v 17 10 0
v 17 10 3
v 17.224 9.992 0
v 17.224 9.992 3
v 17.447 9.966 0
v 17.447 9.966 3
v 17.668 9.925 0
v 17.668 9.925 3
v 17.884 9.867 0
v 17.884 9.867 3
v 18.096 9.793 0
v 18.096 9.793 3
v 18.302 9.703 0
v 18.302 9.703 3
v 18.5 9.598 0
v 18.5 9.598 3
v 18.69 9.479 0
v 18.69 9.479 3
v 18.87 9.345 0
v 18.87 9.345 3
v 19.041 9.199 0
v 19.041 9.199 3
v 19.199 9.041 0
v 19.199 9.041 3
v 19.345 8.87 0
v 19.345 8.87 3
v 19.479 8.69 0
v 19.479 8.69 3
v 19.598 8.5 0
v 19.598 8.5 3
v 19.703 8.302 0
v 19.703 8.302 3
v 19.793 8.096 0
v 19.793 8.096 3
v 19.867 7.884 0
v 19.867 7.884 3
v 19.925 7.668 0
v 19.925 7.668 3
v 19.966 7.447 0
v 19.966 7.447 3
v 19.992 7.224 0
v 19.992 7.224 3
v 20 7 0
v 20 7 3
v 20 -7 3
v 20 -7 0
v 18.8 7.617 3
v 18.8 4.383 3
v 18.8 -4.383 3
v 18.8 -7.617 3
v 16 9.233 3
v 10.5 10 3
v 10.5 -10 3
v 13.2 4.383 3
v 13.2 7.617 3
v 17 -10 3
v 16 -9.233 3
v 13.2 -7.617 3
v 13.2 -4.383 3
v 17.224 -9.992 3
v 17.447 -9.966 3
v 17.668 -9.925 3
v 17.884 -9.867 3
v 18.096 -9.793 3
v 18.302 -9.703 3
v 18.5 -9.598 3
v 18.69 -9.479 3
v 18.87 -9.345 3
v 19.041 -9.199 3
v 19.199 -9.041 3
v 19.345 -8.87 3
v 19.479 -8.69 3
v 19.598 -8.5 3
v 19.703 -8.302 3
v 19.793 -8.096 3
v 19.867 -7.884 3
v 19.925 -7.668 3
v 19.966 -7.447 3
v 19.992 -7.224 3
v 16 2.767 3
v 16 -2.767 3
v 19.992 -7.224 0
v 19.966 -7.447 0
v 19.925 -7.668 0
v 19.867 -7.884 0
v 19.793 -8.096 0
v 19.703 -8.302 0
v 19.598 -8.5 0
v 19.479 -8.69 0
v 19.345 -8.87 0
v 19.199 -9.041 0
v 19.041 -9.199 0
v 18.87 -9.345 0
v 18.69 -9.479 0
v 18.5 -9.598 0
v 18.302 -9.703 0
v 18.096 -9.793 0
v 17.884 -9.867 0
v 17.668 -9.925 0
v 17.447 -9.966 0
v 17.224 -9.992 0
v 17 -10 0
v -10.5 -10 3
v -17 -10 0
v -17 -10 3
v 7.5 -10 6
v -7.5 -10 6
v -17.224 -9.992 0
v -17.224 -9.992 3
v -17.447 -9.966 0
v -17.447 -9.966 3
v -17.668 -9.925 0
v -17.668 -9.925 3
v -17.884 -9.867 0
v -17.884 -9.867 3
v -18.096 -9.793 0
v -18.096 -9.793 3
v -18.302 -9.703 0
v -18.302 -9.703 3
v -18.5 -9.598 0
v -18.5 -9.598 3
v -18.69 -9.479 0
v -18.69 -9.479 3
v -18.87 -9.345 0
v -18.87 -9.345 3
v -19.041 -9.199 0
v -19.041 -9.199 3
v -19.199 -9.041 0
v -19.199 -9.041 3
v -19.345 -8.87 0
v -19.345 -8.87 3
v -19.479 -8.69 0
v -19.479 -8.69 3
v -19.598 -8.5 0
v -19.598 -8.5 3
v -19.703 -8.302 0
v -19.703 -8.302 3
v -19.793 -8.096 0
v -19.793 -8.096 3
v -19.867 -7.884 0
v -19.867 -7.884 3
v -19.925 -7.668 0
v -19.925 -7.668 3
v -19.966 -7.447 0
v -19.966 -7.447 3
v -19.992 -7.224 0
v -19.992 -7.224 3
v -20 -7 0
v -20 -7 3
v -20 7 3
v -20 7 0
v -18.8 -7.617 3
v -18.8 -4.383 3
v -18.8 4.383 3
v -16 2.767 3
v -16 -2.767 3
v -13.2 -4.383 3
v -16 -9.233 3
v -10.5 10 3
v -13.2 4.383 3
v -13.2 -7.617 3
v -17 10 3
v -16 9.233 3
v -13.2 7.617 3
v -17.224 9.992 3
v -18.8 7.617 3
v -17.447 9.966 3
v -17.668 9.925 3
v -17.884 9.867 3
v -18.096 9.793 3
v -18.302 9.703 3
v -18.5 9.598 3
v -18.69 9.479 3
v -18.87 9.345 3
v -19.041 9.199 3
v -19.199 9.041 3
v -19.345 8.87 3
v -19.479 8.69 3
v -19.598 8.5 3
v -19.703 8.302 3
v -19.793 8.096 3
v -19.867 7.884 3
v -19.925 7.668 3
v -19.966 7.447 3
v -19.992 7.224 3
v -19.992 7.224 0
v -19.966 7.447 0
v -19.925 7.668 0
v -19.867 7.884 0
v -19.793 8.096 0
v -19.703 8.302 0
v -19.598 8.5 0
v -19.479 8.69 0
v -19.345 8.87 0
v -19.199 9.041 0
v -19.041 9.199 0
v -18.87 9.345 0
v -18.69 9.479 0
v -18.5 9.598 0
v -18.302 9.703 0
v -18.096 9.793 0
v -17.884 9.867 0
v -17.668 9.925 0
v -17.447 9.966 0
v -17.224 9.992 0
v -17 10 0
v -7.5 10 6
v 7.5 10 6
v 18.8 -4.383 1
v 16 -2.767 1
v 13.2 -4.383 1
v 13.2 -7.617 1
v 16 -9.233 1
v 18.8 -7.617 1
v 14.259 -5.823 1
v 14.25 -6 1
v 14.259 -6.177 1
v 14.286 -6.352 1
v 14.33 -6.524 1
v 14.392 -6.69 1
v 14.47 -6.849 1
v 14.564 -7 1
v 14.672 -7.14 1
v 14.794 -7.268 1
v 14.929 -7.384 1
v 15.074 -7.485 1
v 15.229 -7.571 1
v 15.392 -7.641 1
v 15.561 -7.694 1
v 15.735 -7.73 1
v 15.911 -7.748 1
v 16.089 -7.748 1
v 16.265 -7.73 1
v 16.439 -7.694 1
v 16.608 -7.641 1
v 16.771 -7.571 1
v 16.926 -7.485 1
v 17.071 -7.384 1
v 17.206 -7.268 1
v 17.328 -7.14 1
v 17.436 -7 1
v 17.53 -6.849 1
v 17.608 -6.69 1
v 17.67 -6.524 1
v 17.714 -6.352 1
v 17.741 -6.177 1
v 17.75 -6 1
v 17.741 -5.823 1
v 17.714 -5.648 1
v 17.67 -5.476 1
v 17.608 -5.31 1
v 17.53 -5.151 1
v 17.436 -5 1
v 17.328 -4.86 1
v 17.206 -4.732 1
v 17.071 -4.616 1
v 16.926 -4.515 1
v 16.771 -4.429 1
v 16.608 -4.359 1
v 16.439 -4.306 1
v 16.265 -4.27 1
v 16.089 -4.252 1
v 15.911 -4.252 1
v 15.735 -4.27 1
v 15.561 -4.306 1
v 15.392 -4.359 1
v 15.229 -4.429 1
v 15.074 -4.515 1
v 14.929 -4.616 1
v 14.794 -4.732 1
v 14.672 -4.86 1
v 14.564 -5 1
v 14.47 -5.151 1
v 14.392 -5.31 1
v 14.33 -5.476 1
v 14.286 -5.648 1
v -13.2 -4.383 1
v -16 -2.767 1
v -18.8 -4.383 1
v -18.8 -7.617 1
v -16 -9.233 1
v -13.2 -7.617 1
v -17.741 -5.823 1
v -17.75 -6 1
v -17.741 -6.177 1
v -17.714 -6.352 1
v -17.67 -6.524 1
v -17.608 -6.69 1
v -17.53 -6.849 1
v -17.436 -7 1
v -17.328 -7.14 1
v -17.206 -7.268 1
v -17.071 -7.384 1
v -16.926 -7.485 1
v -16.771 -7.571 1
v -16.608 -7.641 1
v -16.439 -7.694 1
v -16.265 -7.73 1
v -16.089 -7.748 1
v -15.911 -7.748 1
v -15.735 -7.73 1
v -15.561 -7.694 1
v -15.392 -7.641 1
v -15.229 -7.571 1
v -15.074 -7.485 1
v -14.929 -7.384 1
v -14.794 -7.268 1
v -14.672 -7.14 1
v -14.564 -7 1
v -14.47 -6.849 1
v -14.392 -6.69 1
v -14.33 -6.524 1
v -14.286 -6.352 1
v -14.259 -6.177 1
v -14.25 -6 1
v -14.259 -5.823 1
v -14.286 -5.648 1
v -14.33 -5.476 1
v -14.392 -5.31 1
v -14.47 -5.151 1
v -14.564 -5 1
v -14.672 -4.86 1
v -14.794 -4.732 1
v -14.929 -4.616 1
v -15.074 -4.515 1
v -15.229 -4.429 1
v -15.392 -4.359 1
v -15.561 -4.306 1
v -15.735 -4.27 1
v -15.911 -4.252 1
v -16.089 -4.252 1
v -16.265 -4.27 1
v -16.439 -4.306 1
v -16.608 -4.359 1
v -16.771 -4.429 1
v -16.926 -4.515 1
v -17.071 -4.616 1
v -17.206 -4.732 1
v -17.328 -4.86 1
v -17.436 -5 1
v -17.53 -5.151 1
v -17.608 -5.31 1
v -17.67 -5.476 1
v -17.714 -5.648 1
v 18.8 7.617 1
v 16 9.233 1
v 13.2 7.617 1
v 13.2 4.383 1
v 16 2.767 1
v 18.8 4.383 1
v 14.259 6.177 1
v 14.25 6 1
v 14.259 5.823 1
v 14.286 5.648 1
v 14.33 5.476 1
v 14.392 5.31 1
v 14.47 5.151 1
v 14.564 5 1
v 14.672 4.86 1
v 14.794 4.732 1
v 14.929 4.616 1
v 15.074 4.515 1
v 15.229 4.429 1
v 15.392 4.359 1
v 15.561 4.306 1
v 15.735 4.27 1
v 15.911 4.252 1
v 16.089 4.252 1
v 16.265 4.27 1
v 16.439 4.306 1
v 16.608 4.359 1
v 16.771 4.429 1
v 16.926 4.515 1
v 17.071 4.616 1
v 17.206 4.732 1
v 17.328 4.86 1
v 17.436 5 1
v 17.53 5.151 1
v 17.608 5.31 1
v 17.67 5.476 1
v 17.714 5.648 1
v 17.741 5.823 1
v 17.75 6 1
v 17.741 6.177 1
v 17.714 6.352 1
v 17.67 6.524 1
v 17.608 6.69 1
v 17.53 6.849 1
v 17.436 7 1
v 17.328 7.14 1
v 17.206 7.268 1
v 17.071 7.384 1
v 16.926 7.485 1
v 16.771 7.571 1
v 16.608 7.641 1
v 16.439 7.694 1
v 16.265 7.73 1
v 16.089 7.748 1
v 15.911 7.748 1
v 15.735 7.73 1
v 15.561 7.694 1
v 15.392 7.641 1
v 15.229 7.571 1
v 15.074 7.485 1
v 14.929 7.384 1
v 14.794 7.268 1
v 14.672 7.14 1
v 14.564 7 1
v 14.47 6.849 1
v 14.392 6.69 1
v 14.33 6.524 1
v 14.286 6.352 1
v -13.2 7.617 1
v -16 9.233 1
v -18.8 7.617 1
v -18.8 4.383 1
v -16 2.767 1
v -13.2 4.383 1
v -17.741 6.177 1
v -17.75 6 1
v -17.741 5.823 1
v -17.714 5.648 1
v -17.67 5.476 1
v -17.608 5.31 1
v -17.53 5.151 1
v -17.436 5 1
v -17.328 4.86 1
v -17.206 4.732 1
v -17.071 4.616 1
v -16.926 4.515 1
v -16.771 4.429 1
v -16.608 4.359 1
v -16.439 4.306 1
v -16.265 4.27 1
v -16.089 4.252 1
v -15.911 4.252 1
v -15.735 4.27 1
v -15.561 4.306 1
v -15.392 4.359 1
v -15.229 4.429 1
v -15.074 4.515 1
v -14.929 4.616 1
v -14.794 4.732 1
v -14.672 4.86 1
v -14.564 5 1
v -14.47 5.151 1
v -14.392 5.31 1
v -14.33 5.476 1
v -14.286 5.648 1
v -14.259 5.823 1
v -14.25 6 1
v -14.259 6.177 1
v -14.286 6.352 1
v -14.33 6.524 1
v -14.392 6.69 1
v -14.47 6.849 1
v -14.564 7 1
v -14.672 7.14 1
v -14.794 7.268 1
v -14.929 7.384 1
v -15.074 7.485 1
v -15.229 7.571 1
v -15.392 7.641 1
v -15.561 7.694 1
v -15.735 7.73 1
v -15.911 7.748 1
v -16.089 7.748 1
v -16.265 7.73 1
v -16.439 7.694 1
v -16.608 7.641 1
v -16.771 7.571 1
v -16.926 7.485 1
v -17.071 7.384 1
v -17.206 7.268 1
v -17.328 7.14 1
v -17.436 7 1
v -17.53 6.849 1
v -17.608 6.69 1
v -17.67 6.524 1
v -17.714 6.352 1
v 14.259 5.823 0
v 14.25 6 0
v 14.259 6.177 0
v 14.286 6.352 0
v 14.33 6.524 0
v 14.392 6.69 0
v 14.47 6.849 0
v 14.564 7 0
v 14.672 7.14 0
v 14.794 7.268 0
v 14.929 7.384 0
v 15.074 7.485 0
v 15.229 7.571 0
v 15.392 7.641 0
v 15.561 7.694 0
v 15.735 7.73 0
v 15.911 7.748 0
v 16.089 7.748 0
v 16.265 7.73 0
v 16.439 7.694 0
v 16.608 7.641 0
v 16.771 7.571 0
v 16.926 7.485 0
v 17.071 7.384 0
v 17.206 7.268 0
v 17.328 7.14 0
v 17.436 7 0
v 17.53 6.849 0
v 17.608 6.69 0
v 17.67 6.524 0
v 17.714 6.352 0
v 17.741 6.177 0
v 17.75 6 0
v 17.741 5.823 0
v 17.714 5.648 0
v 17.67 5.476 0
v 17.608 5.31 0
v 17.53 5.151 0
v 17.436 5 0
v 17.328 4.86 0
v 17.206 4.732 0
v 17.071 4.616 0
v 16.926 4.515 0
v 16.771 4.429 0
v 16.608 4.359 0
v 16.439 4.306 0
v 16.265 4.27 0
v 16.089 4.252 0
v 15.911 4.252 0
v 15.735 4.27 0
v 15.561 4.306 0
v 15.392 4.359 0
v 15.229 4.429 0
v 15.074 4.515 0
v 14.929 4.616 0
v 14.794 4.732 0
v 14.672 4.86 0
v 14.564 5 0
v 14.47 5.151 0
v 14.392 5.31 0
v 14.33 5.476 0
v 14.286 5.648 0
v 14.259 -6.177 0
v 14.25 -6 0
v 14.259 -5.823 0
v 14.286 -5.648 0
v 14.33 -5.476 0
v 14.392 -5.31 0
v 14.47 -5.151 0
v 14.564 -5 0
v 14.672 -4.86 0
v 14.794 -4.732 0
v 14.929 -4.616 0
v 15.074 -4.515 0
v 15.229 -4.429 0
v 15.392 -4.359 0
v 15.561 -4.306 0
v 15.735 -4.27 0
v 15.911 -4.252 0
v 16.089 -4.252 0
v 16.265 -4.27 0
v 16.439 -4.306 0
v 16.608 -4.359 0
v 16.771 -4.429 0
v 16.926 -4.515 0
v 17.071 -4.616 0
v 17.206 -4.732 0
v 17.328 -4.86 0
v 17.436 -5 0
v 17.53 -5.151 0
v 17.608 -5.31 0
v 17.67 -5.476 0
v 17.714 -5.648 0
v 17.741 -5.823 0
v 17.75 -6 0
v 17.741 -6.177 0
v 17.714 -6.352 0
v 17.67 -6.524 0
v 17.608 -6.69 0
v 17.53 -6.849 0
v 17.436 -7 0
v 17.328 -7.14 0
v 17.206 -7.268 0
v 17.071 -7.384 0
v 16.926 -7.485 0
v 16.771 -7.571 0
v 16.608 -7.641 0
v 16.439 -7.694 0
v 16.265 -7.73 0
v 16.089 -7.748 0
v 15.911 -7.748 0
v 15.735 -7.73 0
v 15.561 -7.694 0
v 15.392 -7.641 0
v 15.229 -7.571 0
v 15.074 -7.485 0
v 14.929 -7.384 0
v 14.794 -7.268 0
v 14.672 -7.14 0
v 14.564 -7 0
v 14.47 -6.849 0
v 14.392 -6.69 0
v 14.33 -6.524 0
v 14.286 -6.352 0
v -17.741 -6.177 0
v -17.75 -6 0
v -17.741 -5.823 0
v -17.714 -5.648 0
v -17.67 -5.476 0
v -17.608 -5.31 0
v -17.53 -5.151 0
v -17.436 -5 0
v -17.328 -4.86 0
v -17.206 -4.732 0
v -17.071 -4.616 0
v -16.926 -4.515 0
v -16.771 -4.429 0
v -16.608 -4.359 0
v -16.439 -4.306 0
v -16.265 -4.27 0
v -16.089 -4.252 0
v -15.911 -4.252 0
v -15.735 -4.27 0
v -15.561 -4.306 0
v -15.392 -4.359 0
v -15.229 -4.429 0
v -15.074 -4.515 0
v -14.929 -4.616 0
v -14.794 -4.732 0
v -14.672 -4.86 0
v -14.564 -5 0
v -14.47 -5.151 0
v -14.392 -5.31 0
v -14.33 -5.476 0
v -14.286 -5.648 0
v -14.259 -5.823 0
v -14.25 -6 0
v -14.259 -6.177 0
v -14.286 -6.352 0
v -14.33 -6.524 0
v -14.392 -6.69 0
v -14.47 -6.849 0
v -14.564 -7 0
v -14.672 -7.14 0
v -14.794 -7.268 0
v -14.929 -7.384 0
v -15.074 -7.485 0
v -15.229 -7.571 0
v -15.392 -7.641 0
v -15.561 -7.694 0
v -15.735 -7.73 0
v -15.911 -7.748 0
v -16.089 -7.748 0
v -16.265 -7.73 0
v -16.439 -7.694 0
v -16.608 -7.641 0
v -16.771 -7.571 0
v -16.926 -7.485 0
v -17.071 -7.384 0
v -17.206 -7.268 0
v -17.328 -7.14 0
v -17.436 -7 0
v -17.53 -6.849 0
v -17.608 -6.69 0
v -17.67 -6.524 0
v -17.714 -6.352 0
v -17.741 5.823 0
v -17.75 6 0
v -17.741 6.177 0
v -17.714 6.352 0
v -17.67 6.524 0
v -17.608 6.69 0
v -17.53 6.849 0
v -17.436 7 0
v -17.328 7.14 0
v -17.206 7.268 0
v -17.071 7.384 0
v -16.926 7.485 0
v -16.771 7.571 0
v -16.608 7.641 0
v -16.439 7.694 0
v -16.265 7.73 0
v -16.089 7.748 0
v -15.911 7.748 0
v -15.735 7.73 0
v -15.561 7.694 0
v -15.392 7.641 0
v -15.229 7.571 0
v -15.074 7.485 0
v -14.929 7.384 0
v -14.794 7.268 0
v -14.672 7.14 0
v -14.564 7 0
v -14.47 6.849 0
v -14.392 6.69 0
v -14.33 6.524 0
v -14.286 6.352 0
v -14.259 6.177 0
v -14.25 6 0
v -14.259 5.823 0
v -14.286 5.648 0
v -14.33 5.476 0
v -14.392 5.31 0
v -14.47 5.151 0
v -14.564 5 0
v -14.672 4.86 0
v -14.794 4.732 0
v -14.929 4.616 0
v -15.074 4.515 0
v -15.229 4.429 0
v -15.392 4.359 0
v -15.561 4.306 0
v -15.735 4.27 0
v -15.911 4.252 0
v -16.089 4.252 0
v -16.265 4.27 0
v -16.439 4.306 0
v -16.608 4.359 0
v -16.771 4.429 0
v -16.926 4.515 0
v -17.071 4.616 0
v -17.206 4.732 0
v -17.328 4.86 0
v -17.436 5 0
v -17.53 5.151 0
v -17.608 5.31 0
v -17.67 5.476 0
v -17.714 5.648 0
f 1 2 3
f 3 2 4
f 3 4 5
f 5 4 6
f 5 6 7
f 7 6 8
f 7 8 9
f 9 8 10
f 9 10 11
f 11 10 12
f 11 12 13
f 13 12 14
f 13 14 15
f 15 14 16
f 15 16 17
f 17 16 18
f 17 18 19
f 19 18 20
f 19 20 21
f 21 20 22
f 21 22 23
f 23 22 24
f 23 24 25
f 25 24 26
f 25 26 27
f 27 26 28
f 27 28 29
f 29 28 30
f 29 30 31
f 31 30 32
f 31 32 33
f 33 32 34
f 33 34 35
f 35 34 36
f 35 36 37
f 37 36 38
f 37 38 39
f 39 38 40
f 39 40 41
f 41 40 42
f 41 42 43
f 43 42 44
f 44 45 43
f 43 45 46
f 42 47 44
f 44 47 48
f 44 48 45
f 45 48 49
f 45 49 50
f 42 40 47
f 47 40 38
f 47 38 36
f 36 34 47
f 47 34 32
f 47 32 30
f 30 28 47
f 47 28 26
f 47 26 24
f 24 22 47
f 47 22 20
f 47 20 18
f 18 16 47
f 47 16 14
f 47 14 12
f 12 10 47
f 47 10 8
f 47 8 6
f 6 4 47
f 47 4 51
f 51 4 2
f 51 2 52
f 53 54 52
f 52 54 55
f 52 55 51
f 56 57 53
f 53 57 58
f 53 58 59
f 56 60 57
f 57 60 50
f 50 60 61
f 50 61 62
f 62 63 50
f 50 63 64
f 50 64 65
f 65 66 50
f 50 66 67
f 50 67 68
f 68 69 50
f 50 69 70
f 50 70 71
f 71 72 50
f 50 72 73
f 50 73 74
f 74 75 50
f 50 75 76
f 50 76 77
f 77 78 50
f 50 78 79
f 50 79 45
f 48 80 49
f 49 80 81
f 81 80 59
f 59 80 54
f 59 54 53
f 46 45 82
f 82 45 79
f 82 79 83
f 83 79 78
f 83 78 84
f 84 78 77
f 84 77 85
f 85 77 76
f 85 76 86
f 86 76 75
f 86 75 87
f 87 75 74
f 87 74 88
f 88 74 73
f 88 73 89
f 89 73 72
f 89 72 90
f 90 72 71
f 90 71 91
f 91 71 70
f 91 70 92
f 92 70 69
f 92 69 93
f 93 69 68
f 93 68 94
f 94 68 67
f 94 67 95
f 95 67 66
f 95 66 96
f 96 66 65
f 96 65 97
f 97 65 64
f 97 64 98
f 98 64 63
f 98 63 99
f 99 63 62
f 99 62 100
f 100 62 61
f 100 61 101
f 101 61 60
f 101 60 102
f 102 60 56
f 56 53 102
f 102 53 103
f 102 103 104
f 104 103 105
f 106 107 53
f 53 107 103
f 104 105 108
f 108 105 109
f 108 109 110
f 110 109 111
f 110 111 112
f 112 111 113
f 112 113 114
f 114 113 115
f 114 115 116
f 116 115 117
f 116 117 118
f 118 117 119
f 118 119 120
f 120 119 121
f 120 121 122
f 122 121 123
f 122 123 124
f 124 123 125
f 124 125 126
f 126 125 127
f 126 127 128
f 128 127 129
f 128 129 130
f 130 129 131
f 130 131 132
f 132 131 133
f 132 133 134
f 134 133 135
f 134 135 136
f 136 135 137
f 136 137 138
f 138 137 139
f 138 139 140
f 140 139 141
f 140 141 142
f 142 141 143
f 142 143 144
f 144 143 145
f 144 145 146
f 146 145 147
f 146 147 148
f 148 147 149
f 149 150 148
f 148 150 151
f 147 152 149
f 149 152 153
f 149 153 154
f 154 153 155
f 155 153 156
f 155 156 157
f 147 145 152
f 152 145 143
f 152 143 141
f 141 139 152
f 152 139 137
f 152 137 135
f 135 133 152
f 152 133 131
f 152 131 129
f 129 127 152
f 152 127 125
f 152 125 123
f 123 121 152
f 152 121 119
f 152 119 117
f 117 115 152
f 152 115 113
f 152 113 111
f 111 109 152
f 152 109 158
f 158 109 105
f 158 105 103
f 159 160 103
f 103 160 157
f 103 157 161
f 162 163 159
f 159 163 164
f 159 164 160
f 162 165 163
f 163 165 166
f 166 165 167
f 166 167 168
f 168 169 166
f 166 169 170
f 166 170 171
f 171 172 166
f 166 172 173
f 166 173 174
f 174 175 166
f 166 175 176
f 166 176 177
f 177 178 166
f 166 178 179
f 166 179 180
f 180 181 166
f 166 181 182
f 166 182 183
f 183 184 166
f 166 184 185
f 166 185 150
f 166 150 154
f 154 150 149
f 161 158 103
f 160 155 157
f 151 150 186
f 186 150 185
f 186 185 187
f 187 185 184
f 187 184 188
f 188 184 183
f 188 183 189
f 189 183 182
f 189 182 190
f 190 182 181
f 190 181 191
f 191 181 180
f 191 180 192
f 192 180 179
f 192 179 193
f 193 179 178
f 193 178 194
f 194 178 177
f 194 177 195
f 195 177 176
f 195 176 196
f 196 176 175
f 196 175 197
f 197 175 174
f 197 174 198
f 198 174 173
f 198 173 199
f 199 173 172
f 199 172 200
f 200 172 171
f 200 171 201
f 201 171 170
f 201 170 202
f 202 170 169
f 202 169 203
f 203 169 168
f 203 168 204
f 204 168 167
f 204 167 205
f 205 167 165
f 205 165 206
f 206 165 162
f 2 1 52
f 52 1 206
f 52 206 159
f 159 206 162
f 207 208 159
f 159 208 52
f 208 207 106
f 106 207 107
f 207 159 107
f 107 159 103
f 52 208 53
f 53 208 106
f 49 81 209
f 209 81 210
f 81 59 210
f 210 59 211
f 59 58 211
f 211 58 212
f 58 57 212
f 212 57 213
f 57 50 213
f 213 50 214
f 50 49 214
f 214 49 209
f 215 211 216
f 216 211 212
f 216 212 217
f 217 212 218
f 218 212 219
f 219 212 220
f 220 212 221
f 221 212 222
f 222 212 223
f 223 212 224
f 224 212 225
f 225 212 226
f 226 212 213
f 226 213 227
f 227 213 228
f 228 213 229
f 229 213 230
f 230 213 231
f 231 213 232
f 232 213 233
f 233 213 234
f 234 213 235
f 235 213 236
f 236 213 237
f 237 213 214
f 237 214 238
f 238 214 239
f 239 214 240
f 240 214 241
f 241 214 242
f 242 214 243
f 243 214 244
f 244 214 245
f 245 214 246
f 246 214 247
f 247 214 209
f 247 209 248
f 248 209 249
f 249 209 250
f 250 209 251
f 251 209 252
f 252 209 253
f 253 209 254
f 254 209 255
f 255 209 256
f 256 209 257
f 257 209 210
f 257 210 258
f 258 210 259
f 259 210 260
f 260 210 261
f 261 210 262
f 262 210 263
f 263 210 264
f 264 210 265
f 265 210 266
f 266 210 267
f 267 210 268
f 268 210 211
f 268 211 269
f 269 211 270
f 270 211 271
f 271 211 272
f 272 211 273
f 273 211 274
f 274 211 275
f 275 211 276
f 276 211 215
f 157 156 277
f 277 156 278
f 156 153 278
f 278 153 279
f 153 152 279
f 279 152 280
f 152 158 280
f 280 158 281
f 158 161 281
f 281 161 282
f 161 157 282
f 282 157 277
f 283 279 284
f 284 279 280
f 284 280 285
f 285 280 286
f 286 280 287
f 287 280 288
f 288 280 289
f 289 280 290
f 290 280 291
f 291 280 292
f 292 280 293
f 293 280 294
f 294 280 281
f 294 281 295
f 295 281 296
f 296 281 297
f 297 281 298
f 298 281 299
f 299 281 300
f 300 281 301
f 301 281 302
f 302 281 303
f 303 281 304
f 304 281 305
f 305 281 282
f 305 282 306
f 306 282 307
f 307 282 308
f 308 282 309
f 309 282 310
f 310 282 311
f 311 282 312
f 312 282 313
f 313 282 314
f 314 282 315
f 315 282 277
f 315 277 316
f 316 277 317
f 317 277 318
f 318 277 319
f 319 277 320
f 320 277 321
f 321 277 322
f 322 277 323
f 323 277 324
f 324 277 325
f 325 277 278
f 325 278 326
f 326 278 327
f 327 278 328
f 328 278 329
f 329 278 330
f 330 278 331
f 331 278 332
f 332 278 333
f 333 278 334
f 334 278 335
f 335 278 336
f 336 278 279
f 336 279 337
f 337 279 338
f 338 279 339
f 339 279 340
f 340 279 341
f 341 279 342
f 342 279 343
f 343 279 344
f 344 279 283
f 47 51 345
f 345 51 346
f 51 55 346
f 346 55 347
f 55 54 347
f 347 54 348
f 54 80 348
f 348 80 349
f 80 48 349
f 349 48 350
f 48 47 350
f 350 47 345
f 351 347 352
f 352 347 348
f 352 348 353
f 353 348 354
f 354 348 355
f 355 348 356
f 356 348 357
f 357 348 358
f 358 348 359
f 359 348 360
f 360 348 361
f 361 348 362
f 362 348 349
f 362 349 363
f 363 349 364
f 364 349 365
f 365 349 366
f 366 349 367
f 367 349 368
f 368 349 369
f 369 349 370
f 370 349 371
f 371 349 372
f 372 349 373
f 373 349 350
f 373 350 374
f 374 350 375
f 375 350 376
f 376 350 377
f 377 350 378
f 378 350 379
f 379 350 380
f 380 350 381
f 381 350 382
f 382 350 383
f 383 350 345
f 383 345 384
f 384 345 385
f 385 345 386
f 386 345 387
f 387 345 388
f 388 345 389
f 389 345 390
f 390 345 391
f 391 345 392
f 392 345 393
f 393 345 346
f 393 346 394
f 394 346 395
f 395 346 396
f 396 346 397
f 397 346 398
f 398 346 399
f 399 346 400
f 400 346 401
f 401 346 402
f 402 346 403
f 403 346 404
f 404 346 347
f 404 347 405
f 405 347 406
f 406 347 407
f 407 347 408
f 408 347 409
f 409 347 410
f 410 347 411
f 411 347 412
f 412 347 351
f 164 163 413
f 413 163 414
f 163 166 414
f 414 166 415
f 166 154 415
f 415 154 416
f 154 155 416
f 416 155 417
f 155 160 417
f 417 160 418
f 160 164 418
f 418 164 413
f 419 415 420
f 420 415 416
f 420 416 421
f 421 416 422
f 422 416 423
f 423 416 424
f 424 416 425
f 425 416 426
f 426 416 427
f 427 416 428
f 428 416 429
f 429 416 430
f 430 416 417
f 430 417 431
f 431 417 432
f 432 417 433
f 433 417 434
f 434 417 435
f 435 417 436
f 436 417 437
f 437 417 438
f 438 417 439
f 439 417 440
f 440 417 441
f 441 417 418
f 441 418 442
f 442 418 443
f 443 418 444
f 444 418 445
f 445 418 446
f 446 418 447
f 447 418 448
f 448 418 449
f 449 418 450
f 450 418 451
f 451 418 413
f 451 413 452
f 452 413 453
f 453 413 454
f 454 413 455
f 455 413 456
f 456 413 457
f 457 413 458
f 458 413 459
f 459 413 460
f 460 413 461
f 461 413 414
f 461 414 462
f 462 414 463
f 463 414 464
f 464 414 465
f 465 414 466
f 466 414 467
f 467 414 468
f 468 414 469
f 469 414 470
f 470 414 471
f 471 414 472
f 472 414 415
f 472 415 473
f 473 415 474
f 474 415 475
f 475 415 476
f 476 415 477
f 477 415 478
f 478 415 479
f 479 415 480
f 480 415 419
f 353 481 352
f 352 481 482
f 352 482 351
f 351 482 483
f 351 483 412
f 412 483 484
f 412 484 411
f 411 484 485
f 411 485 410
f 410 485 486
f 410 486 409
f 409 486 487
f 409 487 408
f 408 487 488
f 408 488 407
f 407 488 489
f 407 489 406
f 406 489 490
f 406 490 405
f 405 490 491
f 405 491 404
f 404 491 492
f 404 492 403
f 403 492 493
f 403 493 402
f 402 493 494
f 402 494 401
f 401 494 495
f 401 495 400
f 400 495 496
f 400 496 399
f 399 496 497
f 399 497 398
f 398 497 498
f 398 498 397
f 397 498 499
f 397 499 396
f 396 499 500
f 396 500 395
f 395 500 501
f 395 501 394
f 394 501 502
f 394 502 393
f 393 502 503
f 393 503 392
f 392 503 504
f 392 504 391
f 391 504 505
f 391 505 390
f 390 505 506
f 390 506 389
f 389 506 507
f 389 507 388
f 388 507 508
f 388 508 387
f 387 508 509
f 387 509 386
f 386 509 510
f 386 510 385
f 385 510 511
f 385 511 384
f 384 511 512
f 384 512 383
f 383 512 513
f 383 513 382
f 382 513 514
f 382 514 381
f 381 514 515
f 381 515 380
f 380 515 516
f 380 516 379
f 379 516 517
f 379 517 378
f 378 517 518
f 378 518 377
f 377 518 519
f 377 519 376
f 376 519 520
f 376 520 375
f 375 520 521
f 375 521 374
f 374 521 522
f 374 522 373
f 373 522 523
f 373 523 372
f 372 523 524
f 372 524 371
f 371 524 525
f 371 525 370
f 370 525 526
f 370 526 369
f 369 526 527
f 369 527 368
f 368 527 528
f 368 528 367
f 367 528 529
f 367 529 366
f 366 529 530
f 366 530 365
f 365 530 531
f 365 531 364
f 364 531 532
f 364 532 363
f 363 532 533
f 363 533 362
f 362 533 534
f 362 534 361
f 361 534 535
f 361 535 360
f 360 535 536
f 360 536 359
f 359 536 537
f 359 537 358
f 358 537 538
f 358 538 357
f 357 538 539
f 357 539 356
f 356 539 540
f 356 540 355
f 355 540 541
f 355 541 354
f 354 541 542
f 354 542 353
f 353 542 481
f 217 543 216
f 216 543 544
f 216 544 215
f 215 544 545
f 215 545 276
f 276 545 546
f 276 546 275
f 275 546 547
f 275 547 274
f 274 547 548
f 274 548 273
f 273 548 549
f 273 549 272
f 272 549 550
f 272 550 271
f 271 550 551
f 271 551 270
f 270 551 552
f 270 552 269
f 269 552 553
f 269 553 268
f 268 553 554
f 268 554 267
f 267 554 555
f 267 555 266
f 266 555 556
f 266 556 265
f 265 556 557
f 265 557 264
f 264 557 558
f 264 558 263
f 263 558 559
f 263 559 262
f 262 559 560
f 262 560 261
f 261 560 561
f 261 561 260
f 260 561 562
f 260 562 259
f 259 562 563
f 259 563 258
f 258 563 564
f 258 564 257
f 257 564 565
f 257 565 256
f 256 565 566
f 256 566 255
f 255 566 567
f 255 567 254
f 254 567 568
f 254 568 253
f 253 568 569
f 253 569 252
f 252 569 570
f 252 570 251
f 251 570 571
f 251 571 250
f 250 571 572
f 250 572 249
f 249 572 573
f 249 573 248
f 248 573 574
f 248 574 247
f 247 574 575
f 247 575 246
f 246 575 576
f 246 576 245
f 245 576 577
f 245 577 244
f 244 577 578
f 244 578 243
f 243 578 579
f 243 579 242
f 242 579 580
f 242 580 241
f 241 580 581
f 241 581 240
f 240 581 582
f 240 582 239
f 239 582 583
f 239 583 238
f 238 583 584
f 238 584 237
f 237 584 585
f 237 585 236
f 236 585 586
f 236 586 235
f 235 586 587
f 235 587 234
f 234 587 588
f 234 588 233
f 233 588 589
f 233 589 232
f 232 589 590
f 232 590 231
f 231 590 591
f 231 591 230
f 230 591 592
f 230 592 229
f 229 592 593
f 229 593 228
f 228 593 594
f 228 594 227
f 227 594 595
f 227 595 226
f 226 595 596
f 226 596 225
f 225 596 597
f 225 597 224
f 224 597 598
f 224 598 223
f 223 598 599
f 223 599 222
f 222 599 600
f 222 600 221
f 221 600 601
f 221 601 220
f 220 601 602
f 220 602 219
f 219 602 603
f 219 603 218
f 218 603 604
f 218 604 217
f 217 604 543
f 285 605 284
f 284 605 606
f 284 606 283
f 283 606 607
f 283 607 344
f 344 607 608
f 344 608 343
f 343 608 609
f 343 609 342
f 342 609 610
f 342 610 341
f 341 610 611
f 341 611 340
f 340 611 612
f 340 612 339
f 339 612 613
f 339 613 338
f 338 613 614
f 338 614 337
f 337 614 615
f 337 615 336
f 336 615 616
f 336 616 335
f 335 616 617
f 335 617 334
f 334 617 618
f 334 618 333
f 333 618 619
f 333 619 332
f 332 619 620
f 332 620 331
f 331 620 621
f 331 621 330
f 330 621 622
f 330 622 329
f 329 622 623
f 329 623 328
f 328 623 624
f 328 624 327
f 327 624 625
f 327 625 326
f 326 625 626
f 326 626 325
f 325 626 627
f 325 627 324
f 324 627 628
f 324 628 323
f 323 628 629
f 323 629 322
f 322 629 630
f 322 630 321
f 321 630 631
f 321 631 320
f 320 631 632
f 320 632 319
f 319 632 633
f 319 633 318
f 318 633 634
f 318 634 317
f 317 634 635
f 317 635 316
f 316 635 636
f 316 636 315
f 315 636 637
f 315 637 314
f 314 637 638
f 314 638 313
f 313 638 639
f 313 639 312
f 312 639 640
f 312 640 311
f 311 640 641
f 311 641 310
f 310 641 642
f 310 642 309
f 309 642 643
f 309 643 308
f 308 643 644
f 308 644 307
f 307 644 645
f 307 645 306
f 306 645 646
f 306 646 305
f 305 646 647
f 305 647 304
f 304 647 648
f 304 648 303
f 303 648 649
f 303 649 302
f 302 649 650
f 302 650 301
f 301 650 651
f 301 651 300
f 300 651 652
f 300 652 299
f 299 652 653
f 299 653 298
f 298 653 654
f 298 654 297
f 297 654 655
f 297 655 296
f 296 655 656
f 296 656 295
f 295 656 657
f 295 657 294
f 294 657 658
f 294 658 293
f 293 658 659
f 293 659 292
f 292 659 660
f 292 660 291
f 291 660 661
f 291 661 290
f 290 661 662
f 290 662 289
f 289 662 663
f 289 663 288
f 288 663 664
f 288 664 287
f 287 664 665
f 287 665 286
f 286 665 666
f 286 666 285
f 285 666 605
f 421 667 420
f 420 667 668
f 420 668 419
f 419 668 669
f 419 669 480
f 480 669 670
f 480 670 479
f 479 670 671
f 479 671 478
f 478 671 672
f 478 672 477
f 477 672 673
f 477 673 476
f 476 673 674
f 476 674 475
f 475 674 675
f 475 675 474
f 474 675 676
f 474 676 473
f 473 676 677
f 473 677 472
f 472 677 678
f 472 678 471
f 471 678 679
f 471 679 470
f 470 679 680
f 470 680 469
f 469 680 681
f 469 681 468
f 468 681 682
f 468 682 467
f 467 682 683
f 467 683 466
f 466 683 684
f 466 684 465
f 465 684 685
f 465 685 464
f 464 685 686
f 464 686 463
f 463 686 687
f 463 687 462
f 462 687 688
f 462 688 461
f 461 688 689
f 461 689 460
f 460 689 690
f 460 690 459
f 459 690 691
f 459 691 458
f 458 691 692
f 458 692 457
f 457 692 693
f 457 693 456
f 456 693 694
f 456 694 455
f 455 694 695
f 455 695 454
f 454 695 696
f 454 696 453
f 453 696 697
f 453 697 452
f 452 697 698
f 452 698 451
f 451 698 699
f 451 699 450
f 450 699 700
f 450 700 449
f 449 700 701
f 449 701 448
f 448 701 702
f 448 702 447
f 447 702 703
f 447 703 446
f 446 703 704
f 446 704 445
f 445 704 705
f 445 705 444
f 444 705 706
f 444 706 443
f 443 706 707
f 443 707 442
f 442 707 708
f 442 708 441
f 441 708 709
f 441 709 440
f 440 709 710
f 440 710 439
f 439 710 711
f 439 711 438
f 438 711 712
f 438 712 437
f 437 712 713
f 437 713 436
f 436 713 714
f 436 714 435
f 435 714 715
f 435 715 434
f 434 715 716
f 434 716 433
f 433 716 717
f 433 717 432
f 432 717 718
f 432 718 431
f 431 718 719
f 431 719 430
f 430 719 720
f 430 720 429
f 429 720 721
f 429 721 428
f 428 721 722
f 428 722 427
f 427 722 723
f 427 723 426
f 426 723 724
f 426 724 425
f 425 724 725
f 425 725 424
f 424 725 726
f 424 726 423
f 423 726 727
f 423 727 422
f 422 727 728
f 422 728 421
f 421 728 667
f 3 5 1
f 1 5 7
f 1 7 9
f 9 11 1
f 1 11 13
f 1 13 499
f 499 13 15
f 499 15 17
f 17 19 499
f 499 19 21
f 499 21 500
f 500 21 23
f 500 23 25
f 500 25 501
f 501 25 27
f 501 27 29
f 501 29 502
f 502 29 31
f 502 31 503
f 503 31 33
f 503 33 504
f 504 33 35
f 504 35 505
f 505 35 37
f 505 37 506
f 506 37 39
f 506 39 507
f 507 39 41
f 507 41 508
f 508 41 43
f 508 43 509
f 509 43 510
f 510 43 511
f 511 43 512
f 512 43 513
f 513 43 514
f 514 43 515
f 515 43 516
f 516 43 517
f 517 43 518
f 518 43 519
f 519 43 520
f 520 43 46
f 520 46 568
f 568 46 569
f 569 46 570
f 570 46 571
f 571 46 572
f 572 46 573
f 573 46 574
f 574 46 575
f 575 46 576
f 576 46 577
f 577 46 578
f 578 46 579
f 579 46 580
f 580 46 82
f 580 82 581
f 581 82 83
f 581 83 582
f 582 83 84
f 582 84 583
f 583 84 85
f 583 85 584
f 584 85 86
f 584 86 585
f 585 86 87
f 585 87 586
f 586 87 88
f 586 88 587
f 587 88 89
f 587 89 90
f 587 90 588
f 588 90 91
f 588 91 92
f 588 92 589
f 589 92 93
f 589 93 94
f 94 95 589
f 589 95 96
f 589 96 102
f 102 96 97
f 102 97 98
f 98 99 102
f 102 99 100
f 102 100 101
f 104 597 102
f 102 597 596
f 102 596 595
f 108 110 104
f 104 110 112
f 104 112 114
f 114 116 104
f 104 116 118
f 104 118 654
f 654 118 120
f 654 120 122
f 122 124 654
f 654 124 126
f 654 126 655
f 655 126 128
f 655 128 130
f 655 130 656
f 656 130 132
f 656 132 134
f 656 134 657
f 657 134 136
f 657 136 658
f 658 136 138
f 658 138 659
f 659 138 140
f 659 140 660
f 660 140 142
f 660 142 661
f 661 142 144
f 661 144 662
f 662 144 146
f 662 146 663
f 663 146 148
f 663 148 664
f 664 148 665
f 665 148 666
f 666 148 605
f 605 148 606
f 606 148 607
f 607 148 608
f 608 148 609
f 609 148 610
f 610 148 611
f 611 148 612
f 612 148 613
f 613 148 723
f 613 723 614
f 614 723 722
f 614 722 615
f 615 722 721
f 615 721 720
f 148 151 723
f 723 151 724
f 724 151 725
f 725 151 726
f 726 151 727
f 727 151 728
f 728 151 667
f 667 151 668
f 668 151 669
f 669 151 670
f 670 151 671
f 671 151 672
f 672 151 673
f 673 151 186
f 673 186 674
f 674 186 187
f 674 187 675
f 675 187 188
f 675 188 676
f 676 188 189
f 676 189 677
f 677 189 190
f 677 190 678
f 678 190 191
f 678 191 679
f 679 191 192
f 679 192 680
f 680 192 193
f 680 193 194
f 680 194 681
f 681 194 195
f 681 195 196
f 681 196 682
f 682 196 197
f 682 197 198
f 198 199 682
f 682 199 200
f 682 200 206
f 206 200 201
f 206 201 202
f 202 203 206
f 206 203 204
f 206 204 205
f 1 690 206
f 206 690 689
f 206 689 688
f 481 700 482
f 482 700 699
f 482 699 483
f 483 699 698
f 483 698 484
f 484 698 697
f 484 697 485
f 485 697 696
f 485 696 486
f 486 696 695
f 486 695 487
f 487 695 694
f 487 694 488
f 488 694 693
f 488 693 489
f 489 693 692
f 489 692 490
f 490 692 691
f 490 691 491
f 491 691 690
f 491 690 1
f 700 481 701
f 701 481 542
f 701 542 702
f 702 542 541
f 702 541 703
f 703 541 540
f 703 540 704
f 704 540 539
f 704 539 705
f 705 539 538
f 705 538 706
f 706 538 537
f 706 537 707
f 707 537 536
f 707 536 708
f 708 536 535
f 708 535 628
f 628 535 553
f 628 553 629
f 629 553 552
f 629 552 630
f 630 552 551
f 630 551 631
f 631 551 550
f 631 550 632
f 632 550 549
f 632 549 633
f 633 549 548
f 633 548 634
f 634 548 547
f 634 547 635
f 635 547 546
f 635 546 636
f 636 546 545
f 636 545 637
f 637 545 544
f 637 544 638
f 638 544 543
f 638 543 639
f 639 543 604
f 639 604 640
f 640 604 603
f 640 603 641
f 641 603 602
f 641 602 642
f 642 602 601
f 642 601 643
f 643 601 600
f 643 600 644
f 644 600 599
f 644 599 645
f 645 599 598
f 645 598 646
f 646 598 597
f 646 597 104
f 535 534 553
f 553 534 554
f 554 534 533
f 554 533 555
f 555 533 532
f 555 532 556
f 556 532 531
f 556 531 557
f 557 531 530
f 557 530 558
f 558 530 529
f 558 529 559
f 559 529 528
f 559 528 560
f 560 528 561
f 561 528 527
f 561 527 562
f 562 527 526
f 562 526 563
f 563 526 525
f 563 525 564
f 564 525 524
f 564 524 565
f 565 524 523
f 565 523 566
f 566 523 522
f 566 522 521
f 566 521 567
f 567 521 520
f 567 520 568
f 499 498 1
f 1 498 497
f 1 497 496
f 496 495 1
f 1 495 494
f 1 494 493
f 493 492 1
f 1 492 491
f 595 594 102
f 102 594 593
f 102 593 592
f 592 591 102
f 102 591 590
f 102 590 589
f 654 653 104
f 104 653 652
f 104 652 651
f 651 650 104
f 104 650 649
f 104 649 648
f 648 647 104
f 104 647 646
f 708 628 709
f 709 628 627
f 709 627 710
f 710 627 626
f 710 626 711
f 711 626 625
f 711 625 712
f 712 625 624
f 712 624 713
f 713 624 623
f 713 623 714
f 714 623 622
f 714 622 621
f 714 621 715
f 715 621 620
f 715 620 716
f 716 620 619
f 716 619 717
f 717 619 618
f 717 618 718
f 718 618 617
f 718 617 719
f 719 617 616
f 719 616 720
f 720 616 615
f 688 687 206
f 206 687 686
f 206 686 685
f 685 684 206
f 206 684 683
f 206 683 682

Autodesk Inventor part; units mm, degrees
ref_plane "YZ Plane" through (0, 0, 0) normal (1, 0, 0) x (0, 1, 0)
ref_plane "XZ Plane" through (0, 0, 0) normal (0, 1, 0) x (-1, 0, 0)
ref_plane "XY Plane" through (0, 0, 0) normal (0, 0, 1) x (1, 0, 0)
sketch "スケッチ1" plane through (0, 0, 0) normal (0, 0, 1) x (1, 0, 0)
  line L0 (-20, -10) -> (20, -10)
  line L1 (20, -10) -> (20, 10)
  line L2 (20, 10) -> (-20, 10)
  line L3 (-20, 10) -> (-20, -10)
  line L4 (-20, -10) -> (20, 10) construction
  line L5 (20, -10) -> (-20, 10) construction
  point P0 (0, 0)
  dimension "d0" = 40
  dimension "d1" = 20
extrude "押し出し1" add sketch "スケッチ1" along normal blind 3
sketch "スケッチ2" plane through (0, 0, 3) normal (0, 0, 1) x (1, 0, 0)
  line L0 (-16, -6) -> (16, -6) construction
  line L1 (16, -6) -> (16, 6) construction
  line L2 (16, 6) -> (-16, 6) construction
  line L3 (-16, 6) -> (-16, -6) construction
  line L4 (-16, -6) -> (16, 6) construction
  line L5 (16, -6) -> (-16, 6) construction
  point P0 (0, 0)
  dimension "d4" = 32
  dimension "d5" = 12
hole "穴1" at (-16, 6, 3) at (-16, -6, 3) at (16, -6, 3) at (16, 6, 3) direction (0, 0, -1) diameter 3.5 depth 8
sketch "スケッチ3" plane through (0, 0, 3) normal (0, 0, 1) x (1, 0, 0)
  circle A0 centre (-16, 6) radius 1.75 projected
  line L0 (-16, 2.7668) -> (-18.8, 4.3834)
  line L1 (-18.8, 4.3834) -> (-18.8, 7.6166)
  line L2 (-18.8, 7.6166) -> (-16, 9.2332)
  line L3 (-16, 9.2332) -> (-13.2, 7.6166)
  line L4 (-13.2, 7.6166) -> (-13.2, 4.3834)
  line L5 (-13.2, 4.3834) -> (-16, 2.7668)
  point P0 (0, 0)
  point P1 (-21.5, 4.5639)
  point P2 (-21.5, 7.4361)
  dimension "d13" = 5.6
extrude "押し出し2" cut sketch "スケッチ3" against normal blind 2 contours A0 | L0 L1 L2 L3 L4 L5
pattern_linear "矩形状パターン1" count 2 spacing 32 along (1, 0, 0) count 2 spacing 12 along (0, -1, 0) of "押し出し2"
sketch "スケッチ4" plane through (-20, -10, 0) normal (0, -1, 0) x (1, 0, 0)
  line L0 (0, 3) -> (40, 3) projected
  line L1 (40, 3) -> (0, 3) projected
  line L2 (9.5, 3) -> (12.5, 6)
  line L3 (12.5, 6) -> (27.5, 6)
  line L4 (27.5, 6) -> (30.5, 3)
  line L5 (0, 0) -> (40, 0) projected
  point P0 (20, 0)
  point P1 (20, 6)
  point P2 (20, 0)
  dimension "d22" = 45
  dimension "d23" = 45
  dimension "d24" = 15
  dimension "d25" = 3
extrude "押し出し3" add sketch "スケッチ4" against normal up to surface (20 mm away)
fillet "フィレット1" radius 3 4 edges at (-20, 10, 1.5) (-20, -10, 1.5) (20, -10, 1.5) (20, 10, 1.5)
equation "\"d23\" = d22"
properties part number "3D_frame-connect-base1_3D プリント"
